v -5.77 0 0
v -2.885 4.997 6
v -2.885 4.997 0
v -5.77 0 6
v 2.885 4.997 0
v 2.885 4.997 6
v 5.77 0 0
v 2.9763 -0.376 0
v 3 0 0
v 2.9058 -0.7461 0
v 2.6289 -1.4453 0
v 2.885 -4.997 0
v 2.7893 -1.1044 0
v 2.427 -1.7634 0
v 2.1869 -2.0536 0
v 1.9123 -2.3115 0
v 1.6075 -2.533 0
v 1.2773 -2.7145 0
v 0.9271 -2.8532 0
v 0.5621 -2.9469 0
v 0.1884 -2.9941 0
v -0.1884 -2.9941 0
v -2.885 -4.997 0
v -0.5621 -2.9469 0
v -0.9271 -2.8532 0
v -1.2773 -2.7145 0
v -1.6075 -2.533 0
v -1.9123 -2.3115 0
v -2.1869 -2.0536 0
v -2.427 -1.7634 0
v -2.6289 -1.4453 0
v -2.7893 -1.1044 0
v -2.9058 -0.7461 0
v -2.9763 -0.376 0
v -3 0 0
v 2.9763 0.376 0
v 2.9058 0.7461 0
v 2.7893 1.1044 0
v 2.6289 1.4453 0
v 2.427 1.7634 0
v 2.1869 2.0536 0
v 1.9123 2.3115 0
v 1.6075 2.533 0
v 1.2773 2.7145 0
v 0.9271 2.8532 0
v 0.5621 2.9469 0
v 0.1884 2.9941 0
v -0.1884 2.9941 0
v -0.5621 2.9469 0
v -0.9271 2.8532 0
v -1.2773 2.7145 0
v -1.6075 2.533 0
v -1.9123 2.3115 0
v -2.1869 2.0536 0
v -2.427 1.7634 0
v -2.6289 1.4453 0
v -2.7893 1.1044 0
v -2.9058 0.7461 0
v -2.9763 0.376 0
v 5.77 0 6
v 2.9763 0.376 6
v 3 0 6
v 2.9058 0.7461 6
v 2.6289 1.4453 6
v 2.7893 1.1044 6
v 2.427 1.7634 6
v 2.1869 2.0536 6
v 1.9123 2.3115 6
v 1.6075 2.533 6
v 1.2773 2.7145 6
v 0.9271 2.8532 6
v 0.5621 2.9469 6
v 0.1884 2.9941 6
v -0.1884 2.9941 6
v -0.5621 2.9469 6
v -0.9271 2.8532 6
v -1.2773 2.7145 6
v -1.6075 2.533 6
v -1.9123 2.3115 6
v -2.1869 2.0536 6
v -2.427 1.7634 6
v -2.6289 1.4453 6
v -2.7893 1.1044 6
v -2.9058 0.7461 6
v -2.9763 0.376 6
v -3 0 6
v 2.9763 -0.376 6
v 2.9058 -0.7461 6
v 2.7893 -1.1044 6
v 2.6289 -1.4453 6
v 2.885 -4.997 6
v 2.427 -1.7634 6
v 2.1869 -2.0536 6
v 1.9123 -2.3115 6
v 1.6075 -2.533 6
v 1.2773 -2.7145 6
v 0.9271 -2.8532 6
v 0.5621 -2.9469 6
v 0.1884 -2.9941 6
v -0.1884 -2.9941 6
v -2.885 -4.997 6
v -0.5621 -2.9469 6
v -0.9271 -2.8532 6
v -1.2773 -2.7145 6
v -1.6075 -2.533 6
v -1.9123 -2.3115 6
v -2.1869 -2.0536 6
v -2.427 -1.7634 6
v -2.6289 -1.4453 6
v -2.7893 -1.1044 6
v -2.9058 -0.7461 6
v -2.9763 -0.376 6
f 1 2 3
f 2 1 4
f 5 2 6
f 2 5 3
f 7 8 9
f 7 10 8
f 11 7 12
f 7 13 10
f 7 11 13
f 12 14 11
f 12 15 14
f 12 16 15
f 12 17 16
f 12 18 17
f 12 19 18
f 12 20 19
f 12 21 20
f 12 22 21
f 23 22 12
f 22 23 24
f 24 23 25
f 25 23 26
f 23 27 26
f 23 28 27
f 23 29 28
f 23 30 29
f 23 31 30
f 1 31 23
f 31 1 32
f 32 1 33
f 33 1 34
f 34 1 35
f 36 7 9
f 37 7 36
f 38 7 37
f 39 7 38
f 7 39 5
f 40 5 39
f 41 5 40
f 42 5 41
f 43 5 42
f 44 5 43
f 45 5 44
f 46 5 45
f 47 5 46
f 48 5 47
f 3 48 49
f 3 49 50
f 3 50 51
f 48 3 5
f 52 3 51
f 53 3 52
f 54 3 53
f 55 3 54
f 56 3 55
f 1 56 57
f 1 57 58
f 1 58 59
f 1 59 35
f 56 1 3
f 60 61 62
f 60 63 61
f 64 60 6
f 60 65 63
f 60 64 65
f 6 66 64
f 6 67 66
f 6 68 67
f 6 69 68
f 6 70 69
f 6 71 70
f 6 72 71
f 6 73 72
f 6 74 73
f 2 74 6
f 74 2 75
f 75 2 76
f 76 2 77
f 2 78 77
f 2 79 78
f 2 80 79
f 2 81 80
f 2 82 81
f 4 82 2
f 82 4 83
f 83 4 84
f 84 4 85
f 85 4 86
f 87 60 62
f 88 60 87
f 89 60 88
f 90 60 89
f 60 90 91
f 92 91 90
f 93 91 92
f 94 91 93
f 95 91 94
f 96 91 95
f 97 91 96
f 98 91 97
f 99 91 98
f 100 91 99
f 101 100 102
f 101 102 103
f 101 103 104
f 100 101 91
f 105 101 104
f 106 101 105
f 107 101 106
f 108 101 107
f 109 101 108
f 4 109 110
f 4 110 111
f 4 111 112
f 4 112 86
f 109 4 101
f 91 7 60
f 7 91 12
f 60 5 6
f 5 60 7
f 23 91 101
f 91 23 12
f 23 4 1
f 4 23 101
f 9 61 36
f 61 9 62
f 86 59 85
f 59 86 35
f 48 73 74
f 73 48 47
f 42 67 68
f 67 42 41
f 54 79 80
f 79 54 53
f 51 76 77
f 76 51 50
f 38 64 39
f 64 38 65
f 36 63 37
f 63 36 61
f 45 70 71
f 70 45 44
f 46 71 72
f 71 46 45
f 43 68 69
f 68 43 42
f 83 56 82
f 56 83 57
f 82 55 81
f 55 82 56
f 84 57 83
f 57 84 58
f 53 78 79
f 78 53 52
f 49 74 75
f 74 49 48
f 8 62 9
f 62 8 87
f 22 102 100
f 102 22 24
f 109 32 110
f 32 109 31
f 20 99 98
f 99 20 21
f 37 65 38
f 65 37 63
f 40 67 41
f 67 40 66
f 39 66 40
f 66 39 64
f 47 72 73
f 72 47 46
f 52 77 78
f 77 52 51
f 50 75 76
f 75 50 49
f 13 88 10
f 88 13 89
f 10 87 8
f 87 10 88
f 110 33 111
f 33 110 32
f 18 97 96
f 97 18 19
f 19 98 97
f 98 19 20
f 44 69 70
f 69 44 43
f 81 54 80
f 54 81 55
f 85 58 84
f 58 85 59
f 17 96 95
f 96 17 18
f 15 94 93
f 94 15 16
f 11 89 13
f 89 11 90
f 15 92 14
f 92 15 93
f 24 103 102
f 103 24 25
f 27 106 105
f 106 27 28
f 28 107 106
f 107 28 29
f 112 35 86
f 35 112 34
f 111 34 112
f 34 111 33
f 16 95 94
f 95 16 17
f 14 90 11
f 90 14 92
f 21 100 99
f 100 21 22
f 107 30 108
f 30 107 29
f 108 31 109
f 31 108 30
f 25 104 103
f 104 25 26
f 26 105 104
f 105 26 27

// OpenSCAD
$fn = 50;


difference() {
	union() {
		translate(v = [0, 0, 0]) {
			rotate(a = [0, 0, 0]) {
				translate(v = [0, 0, 0]) {
					rotate(a = [0, 0, 0]) {
						linear_extrude(height = 6) {
							polygon(points = [[5.7700000000, 0.0000000000], [2.8850000000, 4.9969665798], [-2.8850000000, 4.9969665798], [-5.7700000000, 0.0000000000], [-2.8850000000, -4.9969665798], [2.8850000000, -4.9969665798]]);
						}
					}
				}
			}
		}
	}
	union() {
		translate(v = [0, 0, -10]) {
			rotate(a = [0, 0, 0]) {
				cylinder(h = 20, r = 3.0000000000);
			}
		}
	}
}
